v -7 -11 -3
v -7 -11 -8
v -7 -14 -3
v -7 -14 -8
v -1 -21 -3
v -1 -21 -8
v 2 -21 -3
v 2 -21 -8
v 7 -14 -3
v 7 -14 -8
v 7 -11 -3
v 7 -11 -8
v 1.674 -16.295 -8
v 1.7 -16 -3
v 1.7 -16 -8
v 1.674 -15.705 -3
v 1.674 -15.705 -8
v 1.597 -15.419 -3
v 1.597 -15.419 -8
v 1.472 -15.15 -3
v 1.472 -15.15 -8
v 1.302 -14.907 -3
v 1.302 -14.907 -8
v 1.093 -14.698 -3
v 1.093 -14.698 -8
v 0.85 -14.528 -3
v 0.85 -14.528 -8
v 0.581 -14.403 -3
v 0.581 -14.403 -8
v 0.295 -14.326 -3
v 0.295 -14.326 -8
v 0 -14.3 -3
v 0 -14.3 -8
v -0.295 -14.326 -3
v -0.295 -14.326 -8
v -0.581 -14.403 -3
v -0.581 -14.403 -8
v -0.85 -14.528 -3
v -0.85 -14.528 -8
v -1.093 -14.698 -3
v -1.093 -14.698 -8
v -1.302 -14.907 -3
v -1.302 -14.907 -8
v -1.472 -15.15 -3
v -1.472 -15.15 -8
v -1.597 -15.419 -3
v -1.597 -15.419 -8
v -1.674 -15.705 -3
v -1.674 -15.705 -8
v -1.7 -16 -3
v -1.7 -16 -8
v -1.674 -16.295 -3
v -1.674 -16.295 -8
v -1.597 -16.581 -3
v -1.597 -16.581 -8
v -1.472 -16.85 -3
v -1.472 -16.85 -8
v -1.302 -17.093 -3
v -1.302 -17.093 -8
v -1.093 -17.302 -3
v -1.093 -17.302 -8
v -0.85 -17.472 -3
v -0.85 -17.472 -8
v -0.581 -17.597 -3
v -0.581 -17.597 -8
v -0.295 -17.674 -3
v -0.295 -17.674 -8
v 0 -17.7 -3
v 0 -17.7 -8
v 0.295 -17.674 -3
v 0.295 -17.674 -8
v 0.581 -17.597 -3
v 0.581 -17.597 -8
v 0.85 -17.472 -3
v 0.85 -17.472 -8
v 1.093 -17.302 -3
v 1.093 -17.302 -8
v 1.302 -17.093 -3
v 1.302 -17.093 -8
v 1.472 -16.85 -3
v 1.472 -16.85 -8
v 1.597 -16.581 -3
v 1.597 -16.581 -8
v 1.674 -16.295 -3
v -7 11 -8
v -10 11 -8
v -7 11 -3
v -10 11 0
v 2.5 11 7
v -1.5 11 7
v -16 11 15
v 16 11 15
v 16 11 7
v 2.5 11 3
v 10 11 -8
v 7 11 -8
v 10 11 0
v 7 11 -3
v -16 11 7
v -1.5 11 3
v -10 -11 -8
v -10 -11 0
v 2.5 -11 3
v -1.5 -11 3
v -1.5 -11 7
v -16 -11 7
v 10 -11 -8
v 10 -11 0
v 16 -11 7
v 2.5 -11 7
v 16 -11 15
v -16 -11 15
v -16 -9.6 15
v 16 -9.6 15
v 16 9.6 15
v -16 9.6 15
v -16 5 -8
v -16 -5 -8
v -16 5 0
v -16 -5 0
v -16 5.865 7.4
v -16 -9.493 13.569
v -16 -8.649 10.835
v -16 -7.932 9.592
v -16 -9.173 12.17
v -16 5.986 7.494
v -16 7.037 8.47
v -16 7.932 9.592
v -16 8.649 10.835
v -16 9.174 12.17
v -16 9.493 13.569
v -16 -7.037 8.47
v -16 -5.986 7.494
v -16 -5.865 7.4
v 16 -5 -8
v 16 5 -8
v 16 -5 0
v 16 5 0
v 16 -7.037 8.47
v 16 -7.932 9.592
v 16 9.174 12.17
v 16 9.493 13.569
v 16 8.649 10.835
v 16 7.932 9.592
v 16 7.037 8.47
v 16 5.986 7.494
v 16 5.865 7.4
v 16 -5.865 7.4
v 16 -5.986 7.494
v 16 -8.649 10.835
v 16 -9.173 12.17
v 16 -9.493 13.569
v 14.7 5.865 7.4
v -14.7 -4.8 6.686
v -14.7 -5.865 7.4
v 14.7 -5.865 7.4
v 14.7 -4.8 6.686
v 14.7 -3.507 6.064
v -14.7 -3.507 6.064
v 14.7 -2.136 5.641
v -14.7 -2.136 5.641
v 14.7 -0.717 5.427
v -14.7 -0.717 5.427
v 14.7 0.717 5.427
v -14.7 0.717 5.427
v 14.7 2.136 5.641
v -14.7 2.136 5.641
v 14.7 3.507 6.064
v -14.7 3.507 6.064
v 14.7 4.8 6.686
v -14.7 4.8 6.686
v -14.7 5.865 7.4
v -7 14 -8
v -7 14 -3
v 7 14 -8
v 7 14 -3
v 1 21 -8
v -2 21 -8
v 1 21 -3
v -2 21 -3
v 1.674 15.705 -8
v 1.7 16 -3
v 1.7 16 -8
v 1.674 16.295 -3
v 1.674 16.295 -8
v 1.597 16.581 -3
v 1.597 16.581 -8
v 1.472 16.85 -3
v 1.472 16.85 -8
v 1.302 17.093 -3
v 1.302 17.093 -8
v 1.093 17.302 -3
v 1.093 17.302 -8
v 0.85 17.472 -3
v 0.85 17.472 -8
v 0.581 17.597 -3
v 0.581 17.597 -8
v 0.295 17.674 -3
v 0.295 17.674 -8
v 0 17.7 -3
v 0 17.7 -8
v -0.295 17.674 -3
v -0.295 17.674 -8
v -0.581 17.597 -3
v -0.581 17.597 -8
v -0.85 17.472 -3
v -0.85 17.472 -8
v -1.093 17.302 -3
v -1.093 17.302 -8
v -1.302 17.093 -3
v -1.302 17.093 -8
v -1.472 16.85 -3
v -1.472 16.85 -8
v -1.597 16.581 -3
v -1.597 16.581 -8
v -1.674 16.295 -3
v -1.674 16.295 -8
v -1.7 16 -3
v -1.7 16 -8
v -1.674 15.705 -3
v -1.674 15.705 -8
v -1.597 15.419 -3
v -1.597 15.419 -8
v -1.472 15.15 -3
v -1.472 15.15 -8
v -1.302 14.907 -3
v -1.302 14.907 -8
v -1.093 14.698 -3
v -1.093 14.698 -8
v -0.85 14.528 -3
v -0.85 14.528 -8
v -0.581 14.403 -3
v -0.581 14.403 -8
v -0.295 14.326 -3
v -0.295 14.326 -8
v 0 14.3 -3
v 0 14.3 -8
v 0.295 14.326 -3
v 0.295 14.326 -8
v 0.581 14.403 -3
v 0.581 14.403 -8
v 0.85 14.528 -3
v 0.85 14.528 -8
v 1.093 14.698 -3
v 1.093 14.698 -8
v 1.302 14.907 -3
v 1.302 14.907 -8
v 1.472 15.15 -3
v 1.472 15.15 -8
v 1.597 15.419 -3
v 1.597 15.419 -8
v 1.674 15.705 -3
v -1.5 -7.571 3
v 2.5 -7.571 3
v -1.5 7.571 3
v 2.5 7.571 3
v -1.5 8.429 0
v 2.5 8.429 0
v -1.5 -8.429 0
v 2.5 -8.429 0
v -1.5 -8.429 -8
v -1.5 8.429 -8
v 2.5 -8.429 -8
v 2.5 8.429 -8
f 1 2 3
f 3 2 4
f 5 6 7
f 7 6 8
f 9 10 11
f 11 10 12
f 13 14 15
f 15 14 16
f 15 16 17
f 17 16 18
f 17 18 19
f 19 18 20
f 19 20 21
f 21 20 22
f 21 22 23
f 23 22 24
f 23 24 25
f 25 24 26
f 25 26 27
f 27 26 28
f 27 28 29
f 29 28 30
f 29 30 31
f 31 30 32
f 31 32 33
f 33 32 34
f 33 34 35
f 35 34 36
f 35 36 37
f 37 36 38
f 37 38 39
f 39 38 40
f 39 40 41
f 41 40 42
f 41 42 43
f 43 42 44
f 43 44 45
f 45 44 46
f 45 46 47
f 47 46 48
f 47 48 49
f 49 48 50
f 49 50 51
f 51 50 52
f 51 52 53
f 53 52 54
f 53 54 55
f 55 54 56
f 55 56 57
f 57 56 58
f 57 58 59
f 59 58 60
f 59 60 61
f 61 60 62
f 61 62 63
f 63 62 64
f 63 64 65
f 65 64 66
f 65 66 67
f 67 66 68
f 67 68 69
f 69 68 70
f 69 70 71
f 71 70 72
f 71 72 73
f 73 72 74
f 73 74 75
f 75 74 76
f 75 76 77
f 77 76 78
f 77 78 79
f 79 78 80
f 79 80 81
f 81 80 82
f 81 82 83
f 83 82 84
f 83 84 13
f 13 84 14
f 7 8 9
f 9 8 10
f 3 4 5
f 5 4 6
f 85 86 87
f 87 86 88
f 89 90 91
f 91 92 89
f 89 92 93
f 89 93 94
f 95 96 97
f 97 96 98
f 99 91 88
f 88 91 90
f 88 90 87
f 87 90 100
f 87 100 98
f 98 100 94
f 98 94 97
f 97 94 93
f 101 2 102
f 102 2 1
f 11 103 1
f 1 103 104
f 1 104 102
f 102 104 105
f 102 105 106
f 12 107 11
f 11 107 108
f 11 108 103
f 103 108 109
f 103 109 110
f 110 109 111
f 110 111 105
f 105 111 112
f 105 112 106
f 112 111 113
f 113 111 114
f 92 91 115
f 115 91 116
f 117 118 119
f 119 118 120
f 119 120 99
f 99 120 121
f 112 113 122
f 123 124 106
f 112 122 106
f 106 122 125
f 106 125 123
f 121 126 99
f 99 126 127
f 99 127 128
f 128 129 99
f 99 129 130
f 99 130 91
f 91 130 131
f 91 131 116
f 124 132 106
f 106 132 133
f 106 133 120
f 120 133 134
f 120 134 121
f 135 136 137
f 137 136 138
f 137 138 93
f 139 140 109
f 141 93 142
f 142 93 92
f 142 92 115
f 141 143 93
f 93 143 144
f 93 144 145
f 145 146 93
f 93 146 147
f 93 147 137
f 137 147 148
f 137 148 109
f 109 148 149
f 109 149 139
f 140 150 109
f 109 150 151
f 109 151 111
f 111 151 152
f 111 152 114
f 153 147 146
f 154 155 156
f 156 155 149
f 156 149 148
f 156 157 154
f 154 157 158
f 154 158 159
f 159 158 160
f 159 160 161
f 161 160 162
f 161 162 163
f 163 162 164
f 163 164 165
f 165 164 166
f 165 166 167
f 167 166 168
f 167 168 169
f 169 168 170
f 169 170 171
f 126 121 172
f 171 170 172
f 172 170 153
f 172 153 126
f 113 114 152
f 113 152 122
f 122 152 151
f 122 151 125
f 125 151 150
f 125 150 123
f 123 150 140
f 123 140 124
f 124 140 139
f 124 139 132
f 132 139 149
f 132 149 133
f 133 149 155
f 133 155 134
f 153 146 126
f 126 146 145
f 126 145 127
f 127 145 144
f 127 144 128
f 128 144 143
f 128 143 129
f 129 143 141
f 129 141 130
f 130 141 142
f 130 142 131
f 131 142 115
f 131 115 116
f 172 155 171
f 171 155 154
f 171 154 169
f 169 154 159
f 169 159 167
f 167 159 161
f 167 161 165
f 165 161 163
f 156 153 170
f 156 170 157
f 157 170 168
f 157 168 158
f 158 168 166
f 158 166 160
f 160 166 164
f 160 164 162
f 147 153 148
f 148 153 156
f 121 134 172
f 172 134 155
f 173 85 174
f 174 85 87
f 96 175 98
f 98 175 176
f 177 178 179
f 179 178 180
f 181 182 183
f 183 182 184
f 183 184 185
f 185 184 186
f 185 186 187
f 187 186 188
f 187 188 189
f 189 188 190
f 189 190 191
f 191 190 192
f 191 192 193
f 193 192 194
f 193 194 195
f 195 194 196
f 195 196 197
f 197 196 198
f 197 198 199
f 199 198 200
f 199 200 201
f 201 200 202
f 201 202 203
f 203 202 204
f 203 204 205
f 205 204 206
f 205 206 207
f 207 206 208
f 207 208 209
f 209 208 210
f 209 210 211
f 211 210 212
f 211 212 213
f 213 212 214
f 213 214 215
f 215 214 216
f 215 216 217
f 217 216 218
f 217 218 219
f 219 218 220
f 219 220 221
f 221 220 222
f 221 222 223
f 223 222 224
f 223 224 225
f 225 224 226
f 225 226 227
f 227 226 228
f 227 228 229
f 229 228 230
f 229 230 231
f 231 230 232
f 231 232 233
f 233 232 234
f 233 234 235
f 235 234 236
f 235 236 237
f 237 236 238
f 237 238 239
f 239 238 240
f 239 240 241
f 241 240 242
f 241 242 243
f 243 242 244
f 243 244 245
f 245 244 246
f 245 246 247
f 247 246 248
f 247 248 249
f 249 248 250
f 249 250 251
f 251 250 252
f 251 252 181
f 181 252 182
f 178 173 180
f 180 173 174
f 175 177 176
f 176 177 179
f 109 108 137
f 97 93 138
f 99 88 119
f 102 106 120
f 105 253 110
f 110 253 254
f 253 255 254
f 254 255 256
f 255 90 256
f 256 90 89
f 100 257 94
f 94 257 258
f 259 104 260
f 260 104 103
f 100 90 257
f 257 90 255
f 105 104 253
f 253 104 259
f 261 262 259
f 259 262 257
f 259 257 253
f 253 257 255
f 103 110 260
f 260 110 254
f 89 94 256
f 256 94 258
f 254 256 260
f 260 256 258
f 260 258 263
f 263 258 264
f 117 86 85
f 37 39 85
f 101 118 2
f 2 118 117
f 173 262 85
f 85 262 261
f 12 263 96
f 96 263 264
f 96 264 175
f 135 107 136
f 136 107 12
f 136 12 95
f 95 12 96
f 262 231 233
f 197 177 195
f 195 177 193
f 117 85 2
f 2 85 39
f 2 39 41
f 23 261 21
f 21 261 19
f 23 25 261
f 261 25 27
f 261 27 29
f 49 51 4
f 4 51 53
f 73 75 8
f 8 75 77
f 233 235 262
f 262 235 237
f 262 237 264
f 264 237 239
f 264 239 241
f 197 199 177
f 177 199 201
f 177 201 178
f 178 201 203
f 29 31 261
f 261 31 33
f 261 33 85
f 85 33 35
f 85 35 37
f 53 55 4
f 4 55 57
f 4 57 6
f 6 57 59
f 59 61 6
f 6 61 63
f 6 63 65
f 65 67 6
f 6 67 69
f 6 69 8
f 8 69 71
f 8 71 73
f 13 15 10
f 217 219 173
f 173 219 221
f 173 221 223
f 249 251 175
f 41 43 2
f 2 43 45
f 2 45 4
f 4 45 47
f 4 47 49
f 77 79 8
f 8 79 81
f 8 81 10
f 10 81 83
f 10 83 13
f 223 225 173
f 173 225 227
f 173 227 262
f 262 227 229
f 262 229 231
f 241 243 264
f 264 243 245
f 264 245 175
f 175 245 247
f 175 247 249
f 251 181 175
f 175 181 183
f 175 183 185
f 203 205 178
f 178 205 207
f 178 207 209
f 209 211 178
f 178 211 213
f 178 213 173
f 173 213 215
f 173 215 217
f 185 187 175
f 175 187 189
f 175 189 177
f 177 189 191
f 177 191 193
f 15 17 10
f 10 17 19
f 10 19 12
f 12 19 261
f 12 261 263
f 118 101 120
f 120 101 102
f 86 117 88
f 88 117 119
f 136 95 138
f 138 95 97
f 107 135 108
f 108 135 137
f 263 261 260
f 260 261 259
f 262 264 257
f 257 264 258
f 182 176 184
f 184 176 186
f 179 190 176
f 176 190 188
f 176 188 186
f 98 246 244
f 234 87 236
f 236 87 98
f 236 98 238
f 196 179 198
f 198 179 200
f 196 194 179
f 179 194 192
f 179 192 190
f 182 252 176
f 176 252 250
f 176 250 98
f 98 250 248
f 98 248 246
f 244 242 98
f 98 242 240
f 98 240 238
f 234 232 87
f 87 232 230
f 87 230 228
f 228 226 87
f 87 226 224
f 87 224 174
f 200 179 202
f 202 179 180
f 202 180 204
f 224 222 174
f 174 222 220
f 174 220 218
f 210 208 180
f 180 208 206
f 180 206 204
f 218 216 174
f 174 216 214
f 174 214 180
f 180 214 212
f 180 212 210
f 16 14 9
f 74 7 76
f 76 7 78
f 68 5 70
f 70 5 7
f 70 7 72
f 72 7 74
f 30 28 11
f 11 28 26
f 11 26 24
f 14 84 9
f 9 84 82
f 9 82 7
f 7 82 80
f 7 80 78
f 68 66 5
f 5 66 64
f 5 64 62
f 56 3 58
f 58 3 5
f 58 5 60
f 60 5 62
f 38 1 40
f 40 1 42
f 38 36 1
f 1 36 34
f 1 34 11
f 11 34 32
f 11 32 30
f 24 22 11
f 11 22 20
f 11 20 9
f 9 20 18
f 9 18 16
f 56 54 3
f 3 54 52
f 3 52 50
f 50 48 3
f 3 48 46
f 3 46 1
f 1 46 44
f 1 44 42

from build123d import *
from OCP.BRepFilletAPI import BRepFilletAPI_MakeChamfer
from build123d.topology import SkipClean

# Parameters (mm, degrees)
BOSS_EXTRU_1_DEPTH           = 15
ENL_V_START                  = -1.3
ESQUISSE2_R                  = 9.6
ENL_V_MAT_EXTRU_1_DEPTH      = 29.4
ENL_V_MAT_EXTRU_2_DEPTH      = 36.895542898805694
ENL_V_MAT_EXTRU_2_DEPTH_BACK = 36.895542898805694
BOSS_EXTRU_2_DEPTH           = 3
ESQUISSE6_R                  = 1.7
ENL_V_MAT_EXTRU_3_DEPTH      = 30.000000000000014
CHANFREIN1_SIZE              = 5
CHANFREIN1_SIZE2             = 7
CHANFREIN2_SIZE              = 7
CHANFREIN2_SIZE2             = 6
CHANFREIN3_START             = 12.698865856
CHANFREIN3_OUTLINE_W         = 11
CHANFREIN3_OUTLINE_H         = 12.000000000000002
CHANFREIN3_DEPTH             = 4.301134144
CHANFREIN4_START             = 12.698865856
CHANFREIN4_OUTLINE_W         = 11
CHANFREIN4_OUTLINE_H         = 12.000000000000002
CHANFREIN4_DEPTH             = 4.301134144
CHANFREIN5_START             = -17
CHANFREIN5_OUTLINE_W         = 11
CHANFREIN5_OUTLINE_H         = 12.000000000000002
CHANFREIN5_DEPTH             = 4.301134144
CHANFREIN6_START             = -17
CHANFREIN6_OUTLINE_W         = 11
CHANFREIN6_OUTLINE_H         = 12.000000000000002
CHANFREIN6_DEPTH             = 4.301134144
ENL_V_START_2                = -13.5
ENL_V_MAT_EXTRU_4_DEPTH      = 4
ESQUISSE10_R                 = 1.6999999999999995
ESQUISSE10_R_2               = 1.7000000000000002
ESQUISSE10_W                 = 4
ESQUISSE10_H                 = 16.857142857142858
BOSS_EXTRU_3_DEPTH           = 8
ESQUISSE12_W                 = 14
ESQUISSE12_H                 = 9.999999999999995
ESQUISSE12_W_2               = 14.000000000000002
ESQUISSE12_H_2               = 9.999999999999996
ENL_V_MAT_EXTRU_6_DEPTH      = 6


with BuildPart() as part:
    # Esquisse1 → Boss.-Extru.1 (new body)
    with BuildSketch(Plane.XY):
        Polygon((-16.000000000000007, 11.000000000000002), (15.999999999999993, 11.000000000000002), (15.999999999999996, -11), (-16, -11), align=None)
    extrude(amount=BOSS_EXTRU_1_DEPTH)

    # Esquisse2 → Enlèv. mat.-Extru.1 (cut)
    with BuildSketch(Plane(origin=(15.999999999999996, 2.52e-15, 0), x_dir=(0, 0, -1), z_dir=(1, 1.6e-16, 0)).offset(ENL_V_START)):
        with Locations((-15, -1.73e-15)):
            Circle(ESQUISSE2_R)
    extrude(amount=-ENL_V_MAT_EXTRU_1_DEPTH, mode=Mode.SUBTRACT)

    # Esquisse4 → Enlèv. mat.-Extru.2 (cut, two sides: drawn at the far end of the back side and taken through both)
    with SkipClean():  # the faces are left unmerged after this step: merging them gives an invalid solid
        with BuildSketch(Plane(origin=(-14.700000000000001, -2.32e-15, 0), x_dir=(0, 0, -1), z_dir=(1, 1.6e-16, 0)).offset(-ENL_V_MAT_EXTRU_2_DEPTH_BACK)):
            with BuildLine():
                Line((-7.3999999999999995, -5.865151319446073), (-7.3999999999999995, 5.865151319446073))
                ThreePointArc((-7.3999999999999995, 5.865151319446073), (-10.76593886833709, 8.615841591704243), (-15.000000000000032, 9.599999999999998))
                Line((-15.000000000000032, 9.599999999999998), (-15, -9.600000000000001))
                ThreePointArc((-15, -9.600000000000001), (-10.765938868337066, -8.615841591704251), (-7.3999999999999995, -5.865151319446073))
            make_face()
        extrude(amount=ENL_V_MAT_EXTRU_2_DEPTH + ENL_V_MAT_EXTRU_2_DEPTH_BACK, mode=Mode.SUBTRACT)

    # Esquisse5 → Boss.-Extru.2 (add)
    with BuildSketch(Plane(origin=(0, 0, 0), x_dir=(-1, 0, 0), z_dir=(0, 0, -1))):
        Polygon((7.000000000000008, -11), (-6.999999999999992, -11.000000000000002), (-6.999999999999991, -20.999999999999993), (7.000000000000009, -20.999999999999996), align=None)
        Polygon((7.000000000000006, 11.000000000000002), (-6.999999999999994, 11), (-6.999999999999992, 20.999999999999996), (7.000000000000008, 20.999999999999996), align=None)
    extrude(amount=-BOSS_EXTRU_2_DEPTH)

    # Esquisse6 → Enlèv. mat.-Extru.3 (cut, through all)
    with BuildSketch(Plane.XY.offset(3)):
        with Locations((0, -15.999999999999996)):
            Circle(ESQUISSE6_R)
        with Locations((8.7e-16, 15.999999999999996)):
            Circle(ESQUISSE6_R)
    extrude(amount=-ENL_V_MAT_EXTRU_3_DEPTH, mode=Mode.SUBTRACT)

    # Chanfrein1: one chamfer whose edges measure the first distance from different faces: ONE call of the kernel's chamfer builder (chamfer() names one face for all edges)
    chanfrein1_edges_1 = [part.edges().sort_by_distance(p)[0] for p in [
        (6.999999999999991, -20.999999999999993, 1.5),
    ]]
    chanfrein1_side_1 = [part.faces().sort_by_distance(p)[0] for p in [
        (-9.13e-15, -20.999999999999993, 1.5),
    ]]
    chanfrein1_edges_2 = [part.edges().sort_by_distance(p)[0] for p in [
        (-7.000000000000008, 20.999999999999996, 1.5),
    ]]
    chanfrein1_side_2 = [part.faces().sort_by_distance(p)[0] for p in [
        (-8.24e-15, 20.999999999999996, 1.5),
    ]]
    chanfrein1 = BRepFilletAPI_MakeChamfer(part.part.solid().wrapped)
    for e in chanfrein1_edges_1:
        chanfrein1.Add(CHANFREIN1_SIZE, CHANFREIN1_SIZE2, e.wrapped, chanfrein1_side_1[0].wrapped)  # the first distance lies on this face
    for e in chanfrein1_edges_2:
        chanfrein1.Add(CHANFREIN1_SIZE, CHANFREIN1_SIZE2, e.wrapped, chanfrein1_side_2[0].wrapped)  # the first distance lies on this face
    add(Compound.cast(chanfrein1.Shape()), mode=Mode.REPLACE)

    # Chanfrein2: one chamfer whose edges measure the first distance from different faces: ONE call of the kernel's chamfer builder (chamfer() names one face for all edges)
    chanfrein2_edges_1 = [part.edges().sort_by_distance(p)[0] for p in [
        (6.999999999999992, 20.999999999999996, 1.5),
    ]]
    chanfrein2_side_1 = [part.faces().sort_by_distance(p)[0] for p in [
        (6.999999999999993, 15.999999999999998, 1.5),
    ]]
    chanfrein2_edges_2 = [part.edges().sort_by_distance(p)[0] for p in [
        (-7.000000000000009, -20.999999999999996, 1.5),
    ]]
    chanfrein2_side_2 = [part.faces().sort_by_distance(p)[0] for p in [
        (-7.000000000000009, -15.999999999999998, 1.5),
    ]]
    chanfrein2 = BRepFilletAPI_MakeChamfer(part.part.solid().wrapped)
    for e in chanfrein2_edges_1:
        chanfrein2.Add(CHANFREIN2_SIZE, CHANFREIN2_SIZE2, e.wrapped, chanfrein2_side_1[0].wrapped)  # the first distance lies on this face
    for e in chanfrein2_edges_2:
        chanfrein2.Add(CHANFREIN2_SIZE, CHANFREIN2_SIZE2, e.wrapped, chanfrein2_side_2[0].wrapped)  # the first distance lies on this face
    add(Compound.cast(chanfrein2.Shape()), mode=Mode.REPLACE)

    # Chanfrein3: read off the stored shape, not the designer's step
    # Chanfrein3 outline → Chanfrein3 (cut)
    with BuildSketch(Plane(origin=(0, 0, 0), x_dir=(0.7964473354898962, 0.4591284639882932, 0.39353868341853704), z_dir=(0.6047078979069521, -0.6047078979069521, -0.5183210553488161)).offset(CHANFREIN3_START)):
        with Locations((6.5, 8)):
            Rectangle(CHANFREIN3_OUTLINE_W, CHANFREIN3_OUTLINE_H)
    extrude(amount=CHANFREIN3_DEPTH, mode=Mode.SUBTRACT)

    # Chanfrein4: read off the stored shape, not the designer's step
    # Chanfrein4 outline → Chanfrein4 (cut)
    with BuildSketch(Plane(origin=(0, 0, 0), x_dir=(0.7964473354898962, -0.45912846398829327, 0.39353868341853704), z_dir=(0.6047078979069521, 0.6047078979069522, -0.5183210553488161)).offset(CHANFREIN4_START)):
        with Locations((6.5, -8)):
            Rectangle(CHANFREIN4_OUTLINE_W, CHANFREIN4_OUTLINE_H)
    extrude(amount=CHANFREIN4_DEPTH, mode=Mode.SUBTRACT)

    # Chanfrein5: read off the stored shape, not the designer's step
    # Chanfrein5 outline → Chanfrein5 (cut)
    with BuildSketch(Plane(origin=(0, 0, 0), x_dir=(0.7964473354898962, 0.45912846398829327, -0.39353868341853704), z_dir=(0.6047078979069521, -0.6047078979069522, 0.5183210553488161)).offset(CHANFREIN5_START)):
        with Locations((-6.5, 8)):
            Rectangle(CHANFREIN5_OUTLINE_W, CHANFREIN5_OUTLINE_H)
    extrude(amount=CHANFREIN5_DEPTH, mode=Mode.SUBTRACT)

    # Chanfrein6: read off the stored shape, not the designer's step
    # Chanfrein6 outline → Chanfrein6 (cut)
    with BuildSketch(Plane(origin=(0, 0, 0), x_dir=(0.796447335489896, -0.45912846398829327, -0.39353868341853715), z_dir=(0.6047078979069522, 0.6047078979069521, 0.5183210553488161)).offset(CHANFREIN6_START)):
        with Locations((-6.5, -8)):
            Rectangle(CHANFREIN6_OUTLINE_W, CHANFREIN6_OUTLINE_H)
    extrude(amount=CHANFREIN6_DEPTH, mode=Mode.SUBTRACT)

    # Esquisse7 → Enlèv. mat.-Extru.4 (cut)
    with BuildSketch(Plane(origin=(15.999999999999996, 2.52e-15, 0), x_dir=(0, 0, -1), z_dir=(1, 1.6e-16, 0)).offset(ENL_V_START_2)):
        Polygon((-3, -7.571428571428581), (-3, 7.571428571428564), (-7.000000000000009, 11), (-3.000000000000009, 11), (-4.5e-16, 8.428571428571422), (1.83e-15, -8.428571428571436), (-2.999999999999989, -11.000000000000002), (-6.9999999999999885, -11.000000000000002), align=None)
    extrude(amount=-ENL_V_MAT_EXTRU_4_DEPTH, mode=Mode.SUBTRACT)

    # Esquisse10 → Boss.-Extru.3 (add)
    with BuildSketch(Plane(origin=(0, 0, 0), x_dir=(-1, 0, 0), z_dir=(0, 0, -1))):
        Polygon((-9.999999999999998, -11.000000000000004), (-15.999999999999996, -5.000000000000007), (-15.999999999999993, 4.999999999999996), (-9.999999999999995, 11), (-6.999999999999994, 11), (-6.999999999999993, 13.999999999999977), (-0.9999999999999818, 20.999999999999996), (1.999999999999995, 20.999999999999996), (7.000000000000008, 13.999999999999968), (7.000000000000006, 11.000000000000002), (10.000000000000009, 11.000000000000004), (16.000000000000004, 5.000000000000002), (16.000000000000007, -4.999999999999992), (9.999999999999993, -11), (7.000000000000008, -11), (7.000000000000008, -13.999999999999963), (0.99999999999999, -20.999999999999996), (-1.9999999999999645, -20.999999999999993), (-6.999999999999992, -13.999999999999954), (-6.999999999999992, -11), align=None)
        with Locations(Location((-8.7e-16, 15.999999999999996, 0), (0, 0, 180))):
            Circle(ESQUISSE10_R, mode=Mode.SUBTRACT)
        with Locations(Location((0, -15.999999999999996, 0), (0, 0, 180))):
            Circle(ESQUISSE10_R_2, mode=Mode.SUBTRACT)
        with Locations((-0.499999999999997, -7.11e-15)):
            Rectangle(ESQUISSE10_W, ESQUISSE10_H, mode=Mode.SUBTRACT)
    extrude(amount=BOSS_EXTRU_3_DEPTH)

    # Esquisse12 → Enlèv. mat.-Extru.6 (cut)
    with BuildSketch(Plane.XY.offset(3)):
        with Locations((-5.77e-15, 16)):
            Rectangle(ESQUISSE12_W, ESQUISSE12_H)
        with Locations((-7.11e-15, -15.999999999999998)):
            Rectangle(ESQUISSE12_W_2, ESQUISSE12_H_2)
    extrude(amount=-ENL_V_MAT_EXTRU_6_DEPTH, mode=Mode.SUBTRACT)


solid = part.part
